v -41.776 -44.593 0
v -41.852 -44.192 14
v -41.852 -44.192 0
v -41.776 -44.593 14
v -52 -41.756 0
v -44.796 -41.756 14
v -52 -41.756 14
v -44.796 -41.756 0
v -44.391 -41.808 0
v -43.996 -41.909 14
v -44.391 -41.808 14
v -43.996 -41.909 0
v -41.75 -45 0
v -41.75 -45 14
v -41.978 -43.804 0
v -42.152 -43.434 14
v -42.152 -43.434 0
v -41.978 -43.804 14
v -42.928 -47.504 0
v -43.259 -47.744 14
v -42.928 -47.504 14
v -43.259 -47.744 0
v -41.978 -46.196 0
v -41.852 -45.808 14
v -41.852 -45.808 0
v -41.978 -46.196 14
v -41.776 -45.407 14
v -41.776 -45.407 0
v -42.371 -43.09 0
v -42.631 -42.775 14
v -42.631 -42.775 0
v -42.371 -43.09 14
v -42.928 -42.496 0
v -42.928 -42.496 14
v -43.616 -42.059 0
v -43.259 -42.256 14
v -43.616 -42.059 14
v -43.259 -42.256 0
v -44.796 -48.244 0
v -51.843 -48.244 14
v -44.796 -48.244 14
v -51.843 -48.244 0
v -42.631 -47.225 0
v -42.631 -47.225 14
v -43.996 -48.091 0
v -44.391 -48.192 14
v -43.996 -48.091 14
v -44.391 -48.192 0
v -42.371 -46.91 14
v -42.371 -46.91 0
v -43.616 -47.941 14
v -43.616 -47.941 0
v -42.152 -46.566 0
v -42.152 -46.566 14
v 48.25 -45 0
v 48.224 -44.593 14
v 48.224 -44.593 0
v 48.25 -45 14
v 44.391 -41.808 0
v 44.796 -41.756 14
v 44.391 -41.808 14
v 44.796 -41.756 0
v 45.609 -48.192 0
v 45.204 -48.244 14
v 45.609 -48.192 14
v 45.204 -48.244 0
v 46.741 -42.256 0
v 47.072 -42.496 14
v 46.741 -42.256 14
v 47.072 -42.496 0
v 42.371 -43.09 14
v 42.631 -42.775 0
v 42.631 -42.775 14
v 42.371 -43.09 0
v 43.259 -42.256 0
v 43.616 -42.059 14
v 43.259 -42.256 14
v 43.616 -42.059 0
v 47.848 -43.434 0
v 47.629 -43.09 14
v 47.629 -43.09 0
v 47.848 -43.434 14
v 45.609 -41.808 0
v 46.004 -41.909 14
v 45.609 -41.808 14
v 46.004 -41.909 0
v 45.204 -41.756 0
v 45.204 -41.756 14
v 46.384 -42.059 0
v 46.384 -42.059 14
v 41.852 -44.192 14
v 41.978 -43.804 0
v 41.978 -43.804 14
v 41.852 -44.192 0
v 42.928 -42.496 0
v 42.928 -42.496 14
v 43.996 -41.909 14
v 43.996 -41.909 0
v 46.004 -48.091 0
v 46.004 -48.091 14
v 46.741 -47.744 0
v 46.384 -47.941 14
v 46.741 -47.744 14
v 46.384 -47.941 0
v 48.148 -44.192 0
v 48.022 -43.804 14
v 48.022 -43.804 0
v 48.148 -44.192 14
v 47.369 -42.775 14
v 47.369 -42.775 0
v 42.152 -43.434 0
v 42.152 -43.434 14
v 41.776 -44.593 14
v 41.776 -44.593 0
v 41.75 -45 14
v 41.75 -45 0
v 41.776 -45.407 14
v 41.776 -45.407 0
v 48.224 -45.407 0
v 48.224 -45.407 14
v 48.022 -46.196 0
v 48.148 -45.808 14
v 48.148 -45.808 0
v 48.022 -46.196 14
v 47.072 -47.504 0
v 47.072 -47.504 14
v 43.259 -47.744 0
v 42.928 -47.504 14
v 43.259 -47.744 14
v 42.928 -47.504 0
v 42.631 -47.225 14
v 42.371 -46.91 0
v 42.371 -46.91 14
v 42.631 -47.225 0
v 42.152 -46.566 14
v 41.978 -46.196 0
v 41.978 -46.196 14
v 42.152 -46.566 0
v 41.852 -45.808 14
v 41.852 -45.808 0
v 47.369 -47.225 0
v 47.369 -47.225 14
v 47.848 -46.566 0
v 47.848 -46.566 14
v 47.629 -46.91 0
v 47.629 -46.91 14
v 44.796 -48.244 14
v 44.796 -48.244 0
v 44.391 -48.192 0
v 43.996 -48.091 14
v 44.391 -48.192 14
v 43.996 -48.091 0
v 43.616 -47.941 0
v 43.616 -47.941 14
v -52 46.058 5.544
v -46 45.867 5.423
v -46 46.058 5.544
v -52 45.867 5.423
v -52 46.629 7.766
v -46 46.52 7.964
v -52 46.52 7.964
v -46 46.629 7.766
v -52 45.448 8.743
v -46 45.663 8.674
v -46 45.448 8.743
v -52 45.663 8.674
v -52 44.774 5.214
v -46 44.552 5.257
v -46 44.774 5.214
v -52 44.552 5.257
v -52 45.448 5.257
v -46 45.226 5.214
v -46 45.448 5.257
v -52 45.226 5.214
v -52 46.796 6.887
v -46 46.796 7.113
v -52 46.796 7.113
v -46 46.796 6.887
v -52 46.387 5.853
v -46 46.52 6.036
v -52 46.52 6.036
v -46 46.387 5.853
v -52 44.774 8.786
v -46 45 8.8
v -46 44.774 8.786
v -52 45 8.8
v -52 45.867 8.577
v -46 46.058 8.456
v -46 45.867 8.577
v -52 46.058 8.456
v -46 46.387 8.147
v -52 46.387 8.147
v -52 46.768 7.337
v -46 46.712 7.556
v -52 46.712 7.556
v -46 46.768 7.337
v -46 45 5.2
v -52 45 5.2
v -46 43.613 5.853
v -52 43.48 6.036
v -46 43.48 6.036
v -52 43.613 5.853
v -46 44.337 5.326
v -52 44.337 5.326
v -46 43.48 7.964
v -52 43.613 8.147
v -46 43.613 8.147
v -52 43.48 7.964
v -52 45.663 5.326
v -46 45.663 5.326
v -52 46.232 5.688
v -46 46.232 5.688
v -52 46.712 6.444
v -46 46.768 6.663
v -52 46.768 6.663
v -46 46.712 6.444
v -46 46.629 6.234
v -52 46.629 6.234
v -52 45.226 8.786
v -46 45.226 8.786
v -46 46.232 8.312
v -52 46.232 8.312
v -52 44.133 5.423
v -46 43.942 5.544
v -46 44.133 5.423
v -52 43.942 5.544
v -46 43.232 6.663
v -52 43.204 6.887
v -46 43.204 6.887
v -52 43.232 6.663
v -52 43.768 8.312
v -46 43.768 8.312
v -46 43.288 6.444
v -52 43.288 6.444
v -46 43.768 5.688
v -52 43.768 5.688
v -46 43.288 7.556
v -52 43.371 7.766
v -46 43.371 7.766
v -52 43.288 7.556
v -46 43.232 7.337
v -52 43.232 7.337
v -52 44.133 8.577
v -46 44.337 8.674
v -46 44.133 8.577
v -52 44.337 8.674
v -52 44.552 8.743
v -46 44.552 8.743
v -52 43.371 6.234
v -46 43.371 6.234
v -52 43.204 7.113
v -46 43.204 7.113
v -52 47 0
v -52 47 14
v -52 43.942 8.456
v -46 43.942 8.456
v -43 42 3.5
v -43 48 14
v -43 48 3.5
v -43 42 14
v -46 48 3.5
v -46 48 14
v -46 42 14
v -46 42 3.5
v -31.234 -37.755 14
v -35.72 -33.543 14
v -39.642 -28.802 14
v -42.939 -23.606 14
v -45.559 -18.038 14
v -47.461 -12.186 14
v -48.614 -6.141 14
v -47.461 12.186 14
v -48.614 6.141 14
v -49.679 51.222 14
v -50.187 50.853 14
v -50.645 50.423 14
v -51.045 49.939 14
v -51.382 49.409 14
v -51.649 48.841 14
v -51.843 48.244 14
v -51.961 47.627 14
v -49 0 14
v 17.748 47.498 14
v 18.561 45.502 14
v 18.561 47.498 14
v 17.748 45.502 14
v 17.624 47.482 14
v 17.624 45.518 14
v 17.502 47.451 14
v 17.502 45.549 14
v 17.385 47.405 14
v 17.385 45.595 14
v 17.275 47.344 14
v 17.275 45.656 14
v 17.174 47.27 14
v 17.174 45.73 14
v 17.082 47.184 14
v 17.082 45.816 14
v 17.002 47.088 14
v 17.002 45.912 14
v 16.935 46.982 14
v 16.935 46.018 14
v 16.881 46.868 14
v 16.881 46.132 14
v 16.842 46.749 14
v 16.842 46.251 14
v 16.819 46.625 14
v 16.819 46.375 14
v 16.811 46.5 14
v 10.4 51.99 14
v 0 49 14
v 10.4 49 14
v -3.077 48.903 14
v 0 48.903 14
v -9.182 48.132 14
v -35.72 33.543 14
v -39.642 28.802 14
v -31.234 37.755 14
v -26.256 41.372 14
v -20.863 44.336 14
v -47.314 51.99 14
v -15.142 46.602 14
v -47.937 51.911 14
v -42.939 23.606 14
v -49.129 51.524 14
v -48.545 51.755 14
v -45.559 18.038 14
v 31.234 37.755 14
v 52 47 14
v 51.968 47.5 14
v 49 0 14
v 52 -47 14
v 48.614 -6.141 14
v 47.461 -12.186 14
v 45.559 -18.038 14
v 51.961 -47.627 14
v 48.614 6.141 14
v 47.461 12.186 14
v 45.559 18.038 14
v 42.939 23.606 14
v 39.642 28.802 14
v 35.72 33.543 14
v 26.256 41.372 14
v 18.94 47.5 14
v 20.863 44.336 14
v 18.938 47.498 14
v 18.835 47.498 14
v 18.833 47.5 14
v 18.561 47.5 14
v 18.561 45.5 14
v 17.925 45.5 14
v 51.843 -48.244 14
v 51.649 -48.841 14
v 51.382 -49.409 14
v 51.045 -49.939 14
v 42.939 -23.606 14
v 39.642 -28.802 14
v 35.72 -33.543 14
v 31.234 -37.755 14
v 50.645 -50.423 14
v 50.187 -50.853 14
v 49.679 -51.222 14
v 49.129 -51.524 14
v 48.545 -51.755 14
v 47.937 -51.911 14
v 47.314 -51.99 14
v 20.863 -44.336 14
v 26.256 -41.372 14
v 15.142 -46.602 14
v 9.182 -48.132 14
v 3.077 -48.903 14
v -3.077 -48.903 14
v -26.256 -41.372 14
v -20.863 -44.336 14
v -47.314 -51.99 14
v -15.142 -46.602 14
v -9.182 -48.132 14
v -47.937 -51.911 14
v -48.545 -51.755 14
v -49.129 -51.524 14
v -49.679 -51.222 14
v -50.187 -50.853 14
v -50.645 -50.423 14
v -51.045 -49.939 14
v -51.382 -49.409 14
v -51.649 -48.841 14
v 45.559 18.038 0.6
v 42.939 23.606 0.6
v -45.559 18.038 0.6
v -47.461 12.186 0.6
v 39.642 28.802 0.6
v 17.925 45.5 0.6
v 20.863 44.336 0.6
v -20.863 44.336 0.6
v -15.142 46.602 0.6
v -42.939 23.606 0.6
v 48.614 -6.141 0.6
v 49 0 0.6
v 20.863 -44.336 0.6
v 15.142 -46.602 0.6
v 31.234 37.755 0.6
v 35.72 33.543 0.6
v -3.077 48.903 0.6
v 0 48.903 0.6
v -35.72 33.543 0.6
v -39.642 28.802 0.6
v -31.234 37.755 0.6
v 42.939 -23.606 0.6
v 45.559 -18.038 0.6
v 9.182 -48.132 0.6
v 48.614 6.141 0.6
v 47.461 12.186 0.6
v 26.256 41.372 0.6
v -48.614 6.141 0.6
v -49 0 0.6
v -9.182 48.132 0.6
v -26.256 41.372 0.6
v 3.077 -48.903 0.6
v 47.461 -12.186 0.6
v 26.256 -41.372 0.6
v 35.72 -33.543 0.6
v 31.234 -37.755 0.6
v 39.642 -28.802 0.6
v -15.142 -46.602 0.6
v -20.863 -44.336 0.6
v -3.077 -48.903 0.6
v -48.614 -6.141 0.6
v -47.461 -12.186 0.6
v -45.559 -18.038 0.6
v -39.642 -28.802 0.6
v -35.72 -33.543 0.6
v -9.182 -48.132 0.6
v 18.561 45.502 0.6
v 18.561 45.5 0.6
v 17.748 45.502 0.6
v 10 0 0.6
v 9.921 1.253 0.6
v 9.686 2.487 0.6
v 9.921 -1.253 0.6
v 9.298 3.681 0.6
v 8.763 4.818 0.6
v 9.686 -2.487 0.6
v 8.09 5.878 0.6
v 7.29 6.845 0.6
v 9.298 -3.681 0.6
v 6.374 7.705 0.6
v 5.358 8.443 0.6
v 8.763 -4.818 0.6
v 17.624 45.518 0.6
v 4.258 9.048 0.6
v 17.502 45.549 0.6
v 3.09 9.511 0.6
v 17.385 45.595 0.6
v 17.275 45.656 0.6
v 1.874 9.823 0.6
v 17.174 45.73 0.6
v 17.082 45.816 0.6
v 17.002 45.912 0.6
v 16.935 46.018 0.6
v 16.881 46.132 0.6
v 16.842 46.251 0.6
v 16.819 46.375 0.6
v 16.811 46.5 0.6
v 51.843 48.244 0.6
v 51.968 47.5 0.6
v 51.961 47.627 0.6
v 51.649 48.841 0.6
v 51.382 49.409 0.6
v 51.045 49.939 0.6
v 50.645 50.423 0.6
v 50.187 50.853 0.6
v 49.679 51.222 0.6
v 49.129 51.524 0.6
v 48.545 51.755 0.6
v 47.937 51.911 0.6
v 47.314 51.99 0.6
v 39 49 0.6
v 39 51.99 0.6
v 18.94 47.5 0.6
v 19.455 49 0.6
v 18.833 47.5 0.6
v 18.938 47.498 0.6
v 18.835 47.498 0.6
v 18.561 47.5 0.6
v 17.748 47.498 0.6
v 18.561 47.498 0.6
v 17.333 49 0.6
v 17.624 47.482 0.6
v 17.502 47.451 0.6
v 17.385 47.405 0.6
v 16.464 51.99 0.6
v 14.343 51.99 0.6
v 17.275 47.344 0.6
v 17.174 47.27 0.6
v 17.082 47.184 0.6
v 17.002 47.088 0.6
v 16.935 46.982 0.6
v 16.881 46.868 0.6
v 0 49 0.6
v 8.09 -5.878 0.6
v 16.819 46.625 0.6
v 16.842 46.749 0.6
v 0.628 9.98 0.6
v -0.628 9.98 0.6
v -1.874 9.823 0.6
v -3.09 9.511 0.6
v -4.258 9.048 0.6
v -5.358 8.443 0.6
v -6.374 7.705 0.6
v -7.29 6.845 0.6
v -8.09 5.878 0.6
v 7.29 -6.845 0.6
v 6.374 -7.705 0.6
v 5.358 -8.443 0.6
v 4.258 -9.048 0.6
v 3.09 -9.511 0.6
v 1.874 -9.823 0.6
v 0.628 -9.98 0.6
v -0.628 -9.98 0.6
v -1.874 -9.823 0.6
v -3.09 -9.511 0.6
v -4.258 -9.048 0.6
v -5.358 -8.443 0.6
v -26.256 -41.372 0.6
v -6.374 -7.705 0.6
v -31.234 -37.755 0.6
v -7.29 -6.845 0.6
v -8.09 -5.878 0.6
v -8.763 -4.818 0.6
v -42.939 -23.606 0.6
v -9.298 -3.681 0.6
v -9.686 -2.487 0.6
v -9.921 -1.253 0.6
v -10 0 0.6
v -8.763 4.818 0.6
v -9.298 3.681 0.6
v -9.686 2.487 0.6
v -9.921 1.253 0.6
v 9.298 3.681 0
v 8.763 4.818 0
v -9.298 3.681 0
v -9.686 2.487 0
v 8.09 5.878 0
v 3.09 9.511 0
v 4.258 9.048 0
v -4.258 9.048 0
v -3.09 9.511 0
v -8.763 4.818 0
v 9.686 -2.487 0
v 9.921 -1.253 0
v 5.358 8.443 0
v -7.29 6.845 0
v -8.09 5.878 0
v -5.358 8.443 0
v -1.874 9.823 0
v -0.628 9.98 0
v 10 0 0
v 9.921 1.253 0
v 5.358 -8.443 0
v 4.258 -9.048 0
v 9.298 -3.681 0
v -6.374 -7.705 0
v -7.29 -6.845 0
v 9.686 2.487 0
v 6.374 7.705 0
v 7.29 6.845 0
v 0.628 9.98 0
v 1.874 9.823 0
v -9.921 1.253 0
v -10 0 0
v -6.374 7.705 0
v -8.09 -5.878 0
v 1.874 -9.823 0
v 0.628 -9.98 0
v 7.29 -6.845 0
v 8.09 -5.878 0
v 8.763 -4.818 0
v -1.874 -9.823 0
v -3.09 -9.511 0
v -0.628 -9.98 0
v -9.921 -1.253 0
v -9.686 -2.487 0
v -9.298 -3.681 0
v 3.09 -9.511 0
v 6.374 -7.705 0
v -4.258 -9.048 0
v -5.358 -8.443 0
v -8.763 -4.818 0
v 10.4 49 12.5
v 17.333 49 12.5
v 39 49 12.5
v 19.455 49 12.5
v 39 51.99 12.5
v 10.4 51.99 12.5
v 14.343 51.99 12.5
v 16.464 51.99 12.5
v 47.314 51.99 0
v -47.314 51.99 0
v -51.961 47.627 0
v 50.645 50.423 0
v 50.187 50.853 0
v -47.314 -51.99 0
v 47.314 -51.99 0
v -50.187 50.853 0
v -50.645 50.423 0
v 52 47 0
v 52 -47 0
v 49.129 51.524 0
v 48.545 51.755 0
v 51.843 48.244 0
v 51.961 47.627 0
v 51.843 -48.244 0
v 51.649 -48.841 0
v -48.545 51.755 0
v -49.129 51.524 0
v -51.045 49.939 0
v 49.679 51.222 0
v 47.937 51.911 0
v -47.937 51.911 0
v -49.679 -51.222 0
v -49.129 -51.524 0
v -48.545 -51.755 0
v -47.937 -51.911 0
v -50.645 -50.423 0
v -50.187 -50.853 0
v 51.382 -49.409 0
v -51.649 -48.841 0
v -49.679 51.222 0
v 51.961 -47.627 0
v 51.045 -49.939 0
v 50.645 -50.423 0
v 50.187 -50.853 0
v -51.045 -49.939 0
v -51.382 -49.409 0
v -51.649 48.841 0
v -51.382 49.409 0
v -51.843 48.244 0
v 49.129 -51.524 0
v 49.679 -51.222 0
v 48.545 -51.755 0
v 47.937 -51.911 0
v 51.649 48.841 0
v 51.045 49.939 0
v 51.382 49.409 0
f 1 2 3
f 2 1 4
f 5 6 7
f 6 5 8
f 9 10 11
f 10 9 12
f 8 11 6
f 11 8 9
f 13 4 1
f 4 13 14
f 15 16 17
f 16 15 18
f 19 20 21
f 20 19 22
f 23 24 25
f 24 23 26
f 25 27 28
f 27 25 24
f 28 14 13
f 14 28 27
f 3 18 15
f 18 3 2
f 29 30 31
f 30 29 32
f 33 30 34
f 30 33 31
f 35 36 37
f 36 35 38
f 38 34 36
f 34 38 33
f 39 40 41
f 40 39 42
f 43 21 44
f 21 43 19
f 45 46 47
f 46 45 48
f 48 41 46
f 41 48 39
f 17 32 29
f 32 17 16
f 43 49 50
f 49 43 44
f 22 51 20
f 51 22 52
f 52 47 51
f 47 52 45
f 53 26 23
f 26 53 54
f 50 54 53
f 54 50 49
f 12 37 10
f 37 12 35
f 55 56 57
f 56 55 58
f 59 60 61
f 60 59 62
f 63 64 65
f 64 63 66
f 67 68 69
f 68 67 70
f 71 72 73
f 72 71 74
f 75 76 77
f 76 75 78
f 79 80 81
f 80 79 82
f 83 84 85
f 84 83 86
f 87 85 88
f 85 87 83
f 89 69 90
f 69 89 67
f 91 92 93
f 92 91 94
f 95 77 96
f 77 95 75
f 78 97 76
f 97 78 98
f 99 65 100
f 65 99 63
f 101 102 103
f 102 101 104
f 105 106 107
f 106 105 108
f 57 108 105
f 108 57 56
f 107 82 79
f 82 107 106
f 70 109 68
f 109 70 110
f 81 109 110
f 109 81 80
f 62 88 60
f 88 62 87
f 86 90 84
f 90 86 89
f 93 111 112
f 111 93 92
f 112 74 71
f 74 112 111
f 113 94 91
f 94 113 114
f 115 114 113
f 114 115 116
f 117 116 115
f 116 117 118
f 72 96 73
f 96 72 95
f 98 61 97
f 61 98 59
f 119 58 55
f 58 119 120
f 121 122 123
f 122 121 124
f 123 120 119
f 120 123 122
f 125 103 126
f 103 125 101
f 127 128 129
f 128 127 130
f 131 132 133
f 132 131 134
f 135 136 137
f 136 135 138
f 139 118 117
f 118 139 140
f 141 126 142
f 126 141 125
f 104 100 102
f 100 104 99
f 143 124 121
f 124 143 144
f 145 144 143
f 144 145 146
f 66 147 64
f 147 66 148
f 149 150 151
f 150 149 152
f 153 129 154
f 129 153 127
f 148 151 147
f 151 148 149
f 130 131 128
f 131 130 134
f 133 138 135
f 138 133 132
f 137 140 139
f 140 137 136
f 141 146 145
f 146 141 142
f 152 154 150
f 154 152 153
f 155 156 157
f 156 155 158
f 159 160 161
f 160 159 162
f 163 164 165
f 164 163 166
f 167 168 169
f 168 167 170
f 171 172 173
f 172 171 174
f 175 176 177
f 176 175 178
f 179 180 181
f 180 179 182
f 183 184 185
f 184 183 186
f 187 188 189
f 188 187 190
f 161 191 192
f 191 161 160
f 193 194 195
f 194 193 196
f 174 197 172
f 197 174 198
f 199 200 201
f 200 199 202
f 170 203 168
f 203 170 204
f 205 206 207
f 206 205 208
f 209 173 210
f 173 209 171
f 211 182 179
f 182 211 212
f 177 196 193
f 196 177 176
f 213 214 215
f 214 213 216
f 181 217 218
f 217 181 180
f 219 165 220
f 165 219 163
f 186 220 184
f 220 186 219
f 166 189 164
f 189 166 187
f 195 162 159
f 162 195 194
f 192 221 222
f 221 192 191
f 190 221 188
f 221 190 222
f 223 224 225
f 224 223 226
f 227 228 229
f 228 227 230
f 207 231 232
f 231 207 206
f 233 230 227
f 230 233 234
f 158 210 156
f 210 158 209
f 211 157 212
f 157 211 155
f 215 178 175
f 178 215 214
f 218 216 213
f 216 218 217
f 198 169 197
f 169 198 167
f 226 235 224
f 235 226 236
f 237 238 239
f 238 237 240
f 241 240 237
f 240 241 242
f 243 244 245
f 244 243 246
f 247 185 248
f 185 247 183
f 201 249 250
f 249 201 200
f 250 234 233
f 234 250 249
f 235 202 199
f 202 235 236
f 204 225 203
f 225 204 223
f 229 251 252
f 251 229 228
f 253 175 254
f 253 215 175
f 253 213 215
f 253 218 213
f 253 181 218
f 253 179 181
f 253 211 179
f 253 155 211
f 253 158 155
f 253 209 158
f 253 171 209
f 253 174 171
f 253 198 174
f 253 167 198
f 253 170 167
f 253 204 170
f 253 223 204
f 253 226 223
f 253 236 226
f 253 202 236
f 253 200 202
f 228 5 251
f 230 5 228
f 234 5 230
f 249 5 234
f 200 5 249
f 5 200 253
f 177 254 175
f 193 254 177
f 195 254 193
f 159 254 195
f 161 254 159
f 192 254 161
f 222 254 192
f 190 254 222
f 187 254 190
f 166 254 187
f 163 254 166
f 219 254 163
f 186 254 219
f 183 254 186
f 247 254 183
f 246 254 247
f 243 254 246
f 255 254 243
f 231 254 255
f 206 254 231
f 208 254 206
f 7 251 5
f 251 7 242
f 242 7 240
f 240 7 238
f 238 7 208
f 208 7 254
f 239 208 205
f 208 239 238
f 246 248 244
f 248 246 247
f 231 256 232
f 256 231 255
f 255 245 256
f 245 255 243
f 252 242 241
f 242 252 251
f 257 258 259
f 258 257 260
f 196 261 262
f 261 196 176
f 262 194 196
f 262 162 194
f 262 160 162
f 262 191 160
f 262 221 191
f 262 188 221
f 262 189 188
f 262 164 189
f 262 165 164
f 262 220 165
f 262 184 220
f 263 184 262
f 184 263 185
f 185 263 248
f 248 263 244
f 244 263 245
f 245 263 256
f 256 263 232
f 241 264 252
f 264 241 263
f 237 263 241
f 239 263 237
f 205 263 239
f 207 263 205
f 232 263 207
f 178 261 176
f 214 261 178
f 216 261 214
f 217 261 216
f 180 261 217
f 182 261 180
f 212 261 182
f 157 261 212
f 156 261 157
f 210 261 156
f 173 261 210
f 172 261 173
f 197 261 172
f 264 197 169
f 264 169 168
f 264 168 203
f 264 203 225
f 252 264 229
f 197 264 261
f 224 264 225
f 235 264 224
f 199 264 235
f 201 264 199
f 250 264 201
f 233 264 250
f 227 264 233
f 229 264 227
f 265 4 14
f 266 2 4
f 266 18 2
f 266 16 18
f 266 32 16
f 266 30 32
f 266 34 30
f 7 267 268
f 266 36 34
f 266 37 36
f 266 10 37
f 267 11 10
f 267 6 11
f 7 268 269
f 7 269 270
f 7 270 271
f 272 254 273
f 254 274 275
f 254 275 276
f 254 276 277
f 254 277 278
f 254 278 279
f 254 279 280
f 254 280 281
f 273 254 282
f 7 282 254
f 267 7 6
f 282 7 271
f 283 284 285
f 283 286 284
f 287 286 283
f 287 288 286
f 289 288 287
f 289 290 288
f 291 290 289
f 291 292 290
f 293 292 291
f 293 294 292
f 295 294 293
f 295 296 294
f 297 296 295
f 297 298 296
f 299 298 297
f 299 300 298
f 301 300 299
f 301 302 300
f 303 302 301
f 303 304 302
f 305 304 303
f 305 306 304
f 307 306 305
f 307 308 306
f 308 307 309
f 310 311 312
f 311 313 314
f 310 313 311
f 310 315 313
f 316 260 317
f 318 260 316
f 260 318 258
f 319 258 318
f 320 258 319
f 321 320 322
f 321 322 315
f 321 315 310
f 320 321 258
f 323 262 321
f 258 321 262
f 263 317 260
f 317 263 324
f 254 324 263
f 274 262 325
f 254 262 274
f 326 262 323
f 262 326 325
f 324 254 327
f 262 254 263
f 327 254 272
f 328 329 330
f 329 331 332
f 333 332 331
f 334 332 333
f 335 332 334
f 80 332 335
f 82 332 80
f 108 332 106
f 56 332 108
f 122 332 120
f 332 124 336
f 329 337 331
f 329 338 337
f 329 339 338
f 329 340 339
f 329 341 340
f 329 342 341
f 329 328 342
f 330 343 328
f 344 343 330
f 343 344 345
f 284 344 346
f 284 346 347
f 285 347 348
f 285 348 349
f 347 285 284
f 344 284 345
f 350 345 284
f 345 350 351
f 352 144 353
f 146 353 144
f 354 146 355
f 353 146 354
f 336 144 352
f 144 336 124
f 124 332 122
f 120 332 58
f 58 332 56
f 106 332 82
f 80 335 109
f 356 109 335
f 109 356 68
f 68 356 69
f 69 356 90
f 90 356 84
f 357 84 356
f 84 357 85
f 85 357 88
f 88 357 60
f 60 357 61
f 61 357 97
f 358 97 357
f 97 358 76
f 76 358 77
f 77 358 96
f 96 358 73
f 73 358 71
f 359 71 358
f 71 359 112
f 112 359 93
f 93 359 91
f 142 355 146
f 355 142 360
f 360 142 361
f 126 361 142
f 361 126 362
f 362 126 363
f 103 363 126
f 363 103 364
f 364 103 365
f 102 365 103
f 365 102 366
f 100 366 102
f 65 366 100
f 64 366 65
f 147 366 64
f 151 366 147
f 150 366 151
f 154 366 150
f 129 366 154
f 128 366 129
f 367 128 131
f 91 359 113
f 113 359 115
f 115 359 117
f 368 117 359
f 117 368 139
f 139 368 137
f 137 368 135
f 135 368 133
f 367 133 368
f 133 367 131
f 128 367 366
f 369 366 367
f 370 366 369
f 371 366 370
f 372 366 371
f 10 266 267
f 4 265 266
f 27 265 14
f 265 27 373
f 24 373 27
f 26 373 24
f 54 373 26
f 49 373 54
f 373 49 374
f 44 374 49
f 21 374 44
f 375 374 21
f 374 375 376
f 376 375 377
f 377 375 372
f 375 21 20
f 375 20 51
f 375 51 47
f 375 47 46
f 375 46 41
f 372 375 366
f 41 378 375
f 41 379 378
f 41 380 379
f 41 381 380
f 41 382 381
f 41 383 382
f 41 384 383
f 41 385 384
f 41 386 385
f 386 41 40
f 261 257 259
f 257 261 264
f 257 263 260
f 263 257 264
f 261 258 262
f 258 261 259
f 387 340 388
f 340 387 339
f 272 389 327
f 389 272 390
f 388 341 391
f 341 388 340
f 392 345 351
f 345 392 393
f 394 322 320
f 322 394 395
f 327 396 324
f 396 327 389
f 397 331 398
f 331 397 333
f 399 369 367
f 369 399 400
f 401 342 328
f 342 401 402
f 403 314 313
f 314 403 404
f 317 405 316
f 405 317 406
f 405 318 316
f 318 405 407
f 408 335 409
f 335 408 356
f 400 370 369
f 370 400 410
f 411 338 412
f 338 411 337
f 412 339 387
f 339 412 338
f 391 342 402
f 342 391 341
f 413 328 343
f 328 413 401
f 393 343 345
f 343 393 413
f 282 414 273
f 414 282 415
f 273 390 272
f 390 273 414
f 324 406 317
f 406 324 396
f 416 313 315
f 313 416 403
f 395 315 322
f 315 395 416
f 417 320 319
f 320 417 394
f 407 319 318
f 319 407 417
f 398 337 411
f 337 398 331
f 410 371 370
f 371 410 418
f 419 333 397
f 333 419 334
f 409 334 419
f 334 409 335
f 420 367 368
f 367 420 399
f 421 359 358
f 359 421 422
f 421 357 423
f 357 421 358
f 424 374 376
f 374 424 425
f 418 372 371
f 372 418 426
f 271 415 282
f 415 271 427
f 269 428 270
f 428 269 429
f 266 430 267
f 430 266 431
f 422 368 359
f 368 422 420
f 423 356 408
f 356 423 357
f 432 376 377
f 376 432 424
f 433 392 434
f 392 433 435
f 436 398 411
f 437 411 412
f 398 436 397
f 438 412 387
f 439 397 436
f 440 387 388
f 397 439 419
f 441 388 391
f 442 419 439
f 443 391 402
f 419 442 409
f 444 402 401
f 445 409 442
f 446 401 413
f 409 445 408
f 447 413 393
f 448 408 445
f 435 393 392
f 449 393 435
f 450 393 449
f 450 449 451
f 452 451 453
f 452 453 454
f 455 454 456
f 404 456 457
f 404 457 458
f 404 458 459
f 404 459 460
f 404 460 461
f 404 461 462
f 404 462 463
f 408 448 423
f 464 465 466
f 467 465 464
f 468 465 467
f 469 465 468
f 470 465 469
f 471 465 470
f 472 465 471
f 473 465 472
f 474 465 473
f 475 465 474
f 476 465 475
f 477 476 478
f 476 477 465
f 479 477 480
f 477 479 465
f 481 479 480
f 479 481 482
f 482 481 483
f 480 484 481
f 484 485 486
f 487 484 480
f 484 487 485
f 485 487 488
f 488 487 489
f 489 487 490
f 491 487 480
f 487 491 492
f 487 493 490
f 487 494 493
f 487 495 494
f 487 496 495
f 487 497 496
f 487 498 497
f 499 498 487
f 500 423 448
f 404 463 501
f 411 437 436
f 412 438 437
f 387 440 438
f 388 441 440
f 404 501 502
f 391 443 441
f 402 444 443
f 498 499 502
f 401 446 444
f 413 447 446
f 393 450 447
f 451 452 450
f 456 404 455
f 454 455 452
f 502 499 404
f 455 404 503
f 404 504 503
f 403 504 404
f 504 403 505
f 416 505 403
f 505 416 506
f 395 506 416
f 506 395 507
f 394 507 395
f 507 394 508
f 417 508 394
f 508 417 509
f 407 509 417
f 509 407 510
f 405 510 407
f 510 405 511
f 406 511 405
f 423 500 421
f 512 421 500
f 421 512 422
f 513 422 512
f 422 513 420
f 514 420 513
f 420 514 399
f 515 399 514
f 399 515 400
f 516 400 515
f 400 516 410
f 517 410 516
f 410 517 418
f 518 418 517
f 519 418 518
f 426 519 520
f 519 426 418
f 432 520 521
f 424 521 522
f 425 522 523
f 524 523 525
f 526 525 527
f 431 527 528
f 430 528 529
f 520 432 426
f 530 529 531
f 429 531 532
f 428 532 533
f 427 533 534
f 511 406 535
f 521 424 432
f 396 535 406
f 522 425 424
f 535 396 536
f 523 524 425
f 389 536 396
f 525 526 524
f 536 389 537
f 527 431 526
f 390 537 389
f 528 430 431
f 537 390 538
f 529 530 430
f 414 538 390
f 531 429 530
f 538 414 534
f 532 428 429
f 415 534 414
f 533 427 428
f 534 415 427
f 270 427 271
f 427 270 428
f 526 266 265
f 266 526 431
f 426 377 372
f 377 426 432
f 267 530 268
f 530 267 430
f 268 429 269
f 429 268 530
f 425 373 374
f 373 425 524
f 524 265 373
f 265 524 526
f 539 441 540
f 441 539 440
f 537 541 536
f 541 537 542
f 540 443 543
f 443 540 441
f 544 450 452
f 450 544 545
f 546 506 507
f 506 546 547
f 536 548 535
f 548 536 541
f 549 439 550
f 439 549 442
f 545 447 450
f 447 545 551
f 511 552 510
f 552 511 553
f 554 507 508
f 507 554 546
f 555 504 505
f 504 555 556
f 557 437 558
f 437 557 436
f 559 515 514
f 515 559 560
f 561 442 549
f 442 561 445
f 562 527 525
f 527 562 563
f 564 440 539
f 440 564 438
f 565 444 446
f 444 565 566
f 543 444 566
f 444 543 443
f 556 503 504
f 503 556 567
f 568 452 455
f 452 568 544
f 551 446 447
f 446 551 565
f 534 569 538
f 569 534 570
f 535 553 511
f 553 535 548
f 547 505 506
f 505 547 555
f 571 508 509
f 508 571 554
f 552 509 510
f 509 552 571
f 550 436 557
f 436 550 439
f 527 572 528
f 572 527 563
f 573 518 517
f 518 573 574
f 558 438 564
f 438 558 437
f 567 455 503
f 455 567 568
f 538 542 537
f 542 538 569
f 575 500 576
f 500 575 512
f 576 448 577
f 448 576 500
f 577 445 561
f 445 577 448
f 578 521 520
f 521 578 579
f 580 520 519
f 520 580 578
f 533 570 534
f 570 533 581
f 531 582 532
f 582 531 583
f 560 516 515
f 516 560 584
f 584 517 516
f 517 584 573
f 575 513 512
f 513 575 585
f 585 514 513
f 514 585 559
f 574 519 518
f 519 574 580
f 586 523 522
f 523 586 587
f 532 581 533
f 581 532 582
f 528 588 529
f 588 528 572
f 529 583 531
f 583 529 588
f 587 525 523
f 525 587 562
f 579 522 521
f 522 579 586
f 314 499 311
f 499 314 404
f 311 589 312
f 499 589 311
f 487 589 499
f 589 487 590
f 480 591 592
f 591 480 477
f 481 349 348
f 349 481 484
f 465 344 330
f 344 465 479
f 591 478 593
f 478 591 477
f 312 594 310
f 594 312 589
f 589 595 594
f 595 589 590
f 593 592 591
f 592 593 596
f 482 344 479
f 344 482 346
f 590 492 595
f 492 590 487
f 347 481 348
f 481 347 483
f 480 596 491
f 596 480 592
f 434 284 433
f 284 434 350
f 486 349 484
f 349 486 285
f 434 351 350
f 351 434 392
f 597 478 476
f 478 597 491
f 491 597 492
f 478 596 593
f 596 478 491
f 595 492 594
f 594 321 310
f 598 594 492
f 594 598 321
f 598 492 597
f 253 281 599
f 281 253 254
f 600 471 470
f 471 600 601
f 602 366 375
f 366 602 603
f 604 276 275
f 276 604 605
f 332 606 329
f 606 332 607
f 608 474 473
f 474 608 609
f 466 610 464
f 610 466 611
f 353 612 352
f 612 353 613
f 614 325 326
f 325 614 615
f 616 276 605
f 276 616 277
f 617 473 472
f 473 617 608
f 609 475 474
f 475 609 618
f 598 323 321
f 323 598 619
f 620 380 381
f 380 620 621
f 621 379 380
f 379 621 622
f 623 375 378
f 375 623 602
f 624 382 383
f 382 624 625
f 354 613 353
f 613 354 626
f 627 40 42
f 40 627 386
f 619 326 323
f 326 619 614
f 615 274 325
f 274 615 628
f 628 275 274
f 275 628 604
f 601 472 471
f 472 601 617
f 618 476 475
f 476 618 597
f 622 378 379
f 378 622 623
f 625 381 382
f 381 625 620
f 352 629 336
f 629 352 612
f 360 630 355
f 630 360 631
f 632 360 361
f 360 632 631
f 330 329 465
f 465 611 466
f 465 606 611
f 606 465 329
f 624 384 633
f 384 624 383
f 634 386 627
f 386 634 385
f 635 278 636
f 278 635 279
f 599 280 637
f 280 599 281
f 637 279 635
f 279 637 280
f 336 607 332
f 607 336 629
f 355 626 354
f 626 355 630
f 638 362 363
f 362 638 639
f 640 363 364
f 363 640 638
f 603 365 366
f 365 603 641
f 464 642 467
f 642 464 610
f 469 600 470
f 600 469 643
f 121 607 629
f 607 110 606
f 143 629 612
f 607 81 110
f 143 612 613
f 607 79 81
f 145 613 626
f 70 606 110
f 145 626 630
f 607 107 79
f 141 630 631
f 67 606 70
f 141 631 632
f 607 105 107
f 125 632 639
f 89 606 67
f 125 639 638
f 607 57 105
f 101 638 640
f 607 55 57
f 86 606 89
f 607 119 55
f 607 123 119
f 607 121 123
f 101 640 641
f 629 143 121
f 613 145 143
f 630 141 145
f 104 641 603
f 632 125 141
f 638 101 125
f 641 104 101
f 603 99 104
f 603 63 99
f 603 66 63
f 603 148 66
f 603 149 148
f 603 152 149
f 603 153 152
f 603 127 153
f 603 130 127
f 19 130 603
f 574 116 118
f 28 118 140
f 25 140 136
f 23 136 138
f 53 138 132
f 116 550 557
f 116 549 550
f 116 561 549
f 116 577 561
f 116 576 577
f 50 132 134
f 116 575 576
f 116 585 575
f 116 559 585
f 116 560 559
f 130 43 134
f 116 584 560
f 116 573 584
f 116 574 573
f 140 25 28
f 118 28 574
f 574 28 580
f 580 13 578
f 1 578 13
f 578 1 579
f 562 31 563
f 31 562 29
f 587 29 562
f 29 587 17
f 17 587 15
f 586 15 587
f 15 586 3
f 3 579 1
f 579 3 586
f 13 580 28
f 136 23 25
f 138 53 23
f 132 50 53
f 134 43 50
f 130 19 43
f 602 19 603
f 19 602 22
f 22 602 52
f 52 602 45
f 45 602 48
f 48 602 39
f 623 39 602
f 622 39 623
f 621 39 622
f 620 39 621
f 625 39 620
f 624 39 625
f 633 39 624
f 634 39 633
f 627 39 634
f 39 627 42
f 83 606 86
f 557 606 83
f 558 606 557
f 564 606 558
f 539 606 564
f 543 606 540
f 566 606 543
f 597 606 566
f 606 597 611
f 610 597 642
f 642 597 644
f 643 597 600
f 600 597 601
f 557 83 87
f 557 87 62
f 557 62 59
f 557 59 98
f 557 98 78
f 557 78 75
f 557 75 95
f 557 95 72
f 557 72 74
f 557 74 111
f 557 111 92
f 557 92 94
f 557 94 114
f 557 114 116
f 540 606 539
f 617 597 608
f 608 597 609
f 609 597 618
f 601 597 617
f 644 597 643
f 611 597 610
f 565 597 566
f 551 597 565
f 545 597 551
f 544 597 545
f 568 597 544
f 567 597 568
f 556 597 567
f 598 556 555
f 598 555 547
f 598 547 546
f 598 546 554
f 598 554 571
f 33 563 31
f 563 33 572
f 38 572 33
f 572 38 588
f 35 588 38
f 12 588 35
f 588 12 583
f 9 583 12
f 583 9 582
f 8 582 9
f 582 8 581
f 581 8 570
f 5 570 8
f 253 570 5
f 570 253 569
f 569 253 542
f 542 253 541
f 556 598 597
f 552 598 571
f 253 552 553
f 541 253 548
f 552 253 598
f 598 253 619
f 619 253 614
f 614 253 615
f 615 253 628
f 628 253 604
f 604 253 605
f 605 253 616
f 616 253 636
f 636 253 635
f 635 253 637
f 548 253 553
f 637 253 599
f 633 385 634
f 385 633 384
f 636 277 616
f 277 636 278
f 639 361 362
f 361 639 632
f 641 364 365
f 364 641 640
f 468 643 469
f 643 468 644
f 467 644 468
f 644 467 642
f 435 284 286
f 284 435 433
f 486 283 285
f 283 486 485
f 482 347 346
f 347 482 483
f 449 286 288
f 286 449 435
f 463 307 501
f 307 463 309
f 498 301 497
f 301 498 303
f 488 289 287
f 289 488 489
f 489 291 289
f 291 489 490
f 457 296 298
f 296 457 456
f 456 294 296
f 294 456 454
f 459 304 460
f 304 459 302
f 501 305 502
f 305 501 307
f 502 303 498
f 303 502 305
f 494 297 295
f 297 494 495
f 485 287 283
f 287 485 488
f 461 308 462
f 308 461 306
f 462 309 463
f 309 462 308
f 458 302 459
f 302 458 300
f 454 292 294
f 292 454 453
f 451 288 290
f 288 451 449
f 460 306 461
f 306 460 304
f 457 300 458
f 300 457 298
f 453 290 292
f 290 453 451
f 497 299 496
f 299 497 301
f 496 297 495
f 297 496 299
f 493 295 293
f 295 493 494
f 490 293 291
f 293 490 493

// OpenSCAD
$fn = 50;


union() {
	difference() {
		union() {
			translate(v = [0, 0, 0]) {
				rotate(a = [0, 0, 0]) {
					hull() {
						translate(v = [-47.0000000000, 47.0000000000, 0]) {
							rotate(a = [0, 0, 0]) {
								translate(v = [0, 0, 0]) {
									rotate(a = [0, 0, 0]) {
										cylinder(h = 14, r = 5);
									}
								}
							}
						}
						translate(v = [47.0000000000, 47.0000000000, 0]) {
							rotate(a = [0, 0, 0]) {
								translate(v = [0, 0, 0]) {
									rotate(a = [0, 0, 0]) {
										cylinder(h = 14, r = 5);
									}
								}
							}
						}
						translate(v = [-47.0000000000, -47.0000000000, 0]) {
							rotate(a = [0, 0, 0]) {
								translate(v = [0, 0, 0]) {
									rotate(a = [0, 0, 0]) {
										cylinder(h = 14, r = 5);
									}
								}
							}
						}
						translate(v = [47.0000000000, -47.0000000000, 0]) {
							rotate(a = [0, 0, 0]) {
								translate(v = [0, 0, 0]) {
									rotate(a = [0, 0, 0]) {
										cylinder(h = 14, r = 5);
									}
								}
							}
						}
					}
				}
			}
		}
		union() {
			translate(v = [-52.5000000000, -45.0000000000, -125]) {
				rotate(a = [0, 0, 0]) {
					hull() {
						translate(v = [7.5000000000, 0, 0]) {
							rotate(a = [0, 0, 0]) {
								translate(v = [0, 0, 0]) {
									rotate(a = [0, 0, 0]) {
										cylinder(h = 250, r = 3.2500000000);
									}
								}
							}
						}
						translate(v = [-7.5000000000, 0, 0]) {
							rotate(a = [0, 0, 0]) {
								translate(v = [0, 0, 0]) {
									rotate(a = [0, 0, 0]) {
										cylinder(h = 250, r = 3.2500000000);
									}
								}
							}
						}
					}
				}
			}
			translate(v = [45.0000000000, -45.0000000000, -125.0000000000]) {
				rotate(a = [0, 0, 0]) {
					cylinder(h = 250, r = 3.2500000000);
				}
			}
			translate(v = [-52.0000000000, 45.0000000000, 7.0000000000]) {
				rotate(a = [0, 90, 0]) {
					cylinder(h = 9, r = 1.8000000000);
				}
			}
			translate(v = [-46.0000000000, 42.0000000000, 3.5000000000]) {
				rotate(a = [0, 0, 0]) {
					cube(size = [3, 6, 10.5000000000]);
				}
			}
			translate(v = [0, 0, 0.6000000000]) {
				rotate(a = [0, 0, 0]) {
					cylinder(h = 16.4000000000, r = 49.0000000000);
				}
			}
			translate(v = [0, 0, -7.0000000000]) {
				rotate(a = [0, 0, 0]) {
					cylinder(h = 14, r = 10.0000000000);
				}
			}
			translate(v = [0.0000000000, 47.5000000000, 0.6000000000]) {
				rotate(a = [0, 0, 0]) {
					cube(size = [52.0000000000, 1.5000000000, 16.4000000000]);
				}
			}
			translate(v = [39.0000000000, 47.5000000000, 0.6000000000]) {
				rotate(a = [0, 0, 0]) {
					cube(size = [13.0000000000, 4.5000000000, 16.4000000000]);
				}
			}
			translate(v = [10.4000000000, 47.5000000000, 12.5000000000]) {
				rotate(a = [0, 0, 0]) {
					cube(size = [41.6000000000, 4.5000000000, 1.5000000000]);
				}
			}
			translate(v = [13.5833333333, 52.7500000000, 0.6000000000]) {
				rotate(a = [0, 0, -45]) {
					cube(size = [7.5000000000, 1.5000000000, 16.4000000000]);
				}
			}
			translate(v = [11.0610000000, 45.5000000000, 0.6000000000]) {
				rotate(a = [0, 0, 0]) {
					cube(size = [7.5000000000, 2, 13.4000000000]);
				}
			}
		}
	}
	union() {
		translate(v = [20.3110000000, 46.5000000000, 0]) {
			rotate(a = [0, 0, 0]) {
				hull() {
					translate(v = [2.5000000000, 0, 0]) {
						rotate(a = [0, 0, 0]) {
							translate(v = [0, 0, 0]) {
								rotate(a = [0, 0, 0]) {
									cylinder(h = 14, r = 1.0000000000);
								}
							}
						}
					}
					translate(v = [-2.5000000000, 0, 0]) {
						rotate(a = [0, 0, 0]) {
							translate(v = [0, 0, 0]) {
								rotate(a = [0, 0, 0]) {
									cylinder(h = 14, r = 1.0000000000);
								}
							}
						}
					}
				}
			}
		}
	}
}
